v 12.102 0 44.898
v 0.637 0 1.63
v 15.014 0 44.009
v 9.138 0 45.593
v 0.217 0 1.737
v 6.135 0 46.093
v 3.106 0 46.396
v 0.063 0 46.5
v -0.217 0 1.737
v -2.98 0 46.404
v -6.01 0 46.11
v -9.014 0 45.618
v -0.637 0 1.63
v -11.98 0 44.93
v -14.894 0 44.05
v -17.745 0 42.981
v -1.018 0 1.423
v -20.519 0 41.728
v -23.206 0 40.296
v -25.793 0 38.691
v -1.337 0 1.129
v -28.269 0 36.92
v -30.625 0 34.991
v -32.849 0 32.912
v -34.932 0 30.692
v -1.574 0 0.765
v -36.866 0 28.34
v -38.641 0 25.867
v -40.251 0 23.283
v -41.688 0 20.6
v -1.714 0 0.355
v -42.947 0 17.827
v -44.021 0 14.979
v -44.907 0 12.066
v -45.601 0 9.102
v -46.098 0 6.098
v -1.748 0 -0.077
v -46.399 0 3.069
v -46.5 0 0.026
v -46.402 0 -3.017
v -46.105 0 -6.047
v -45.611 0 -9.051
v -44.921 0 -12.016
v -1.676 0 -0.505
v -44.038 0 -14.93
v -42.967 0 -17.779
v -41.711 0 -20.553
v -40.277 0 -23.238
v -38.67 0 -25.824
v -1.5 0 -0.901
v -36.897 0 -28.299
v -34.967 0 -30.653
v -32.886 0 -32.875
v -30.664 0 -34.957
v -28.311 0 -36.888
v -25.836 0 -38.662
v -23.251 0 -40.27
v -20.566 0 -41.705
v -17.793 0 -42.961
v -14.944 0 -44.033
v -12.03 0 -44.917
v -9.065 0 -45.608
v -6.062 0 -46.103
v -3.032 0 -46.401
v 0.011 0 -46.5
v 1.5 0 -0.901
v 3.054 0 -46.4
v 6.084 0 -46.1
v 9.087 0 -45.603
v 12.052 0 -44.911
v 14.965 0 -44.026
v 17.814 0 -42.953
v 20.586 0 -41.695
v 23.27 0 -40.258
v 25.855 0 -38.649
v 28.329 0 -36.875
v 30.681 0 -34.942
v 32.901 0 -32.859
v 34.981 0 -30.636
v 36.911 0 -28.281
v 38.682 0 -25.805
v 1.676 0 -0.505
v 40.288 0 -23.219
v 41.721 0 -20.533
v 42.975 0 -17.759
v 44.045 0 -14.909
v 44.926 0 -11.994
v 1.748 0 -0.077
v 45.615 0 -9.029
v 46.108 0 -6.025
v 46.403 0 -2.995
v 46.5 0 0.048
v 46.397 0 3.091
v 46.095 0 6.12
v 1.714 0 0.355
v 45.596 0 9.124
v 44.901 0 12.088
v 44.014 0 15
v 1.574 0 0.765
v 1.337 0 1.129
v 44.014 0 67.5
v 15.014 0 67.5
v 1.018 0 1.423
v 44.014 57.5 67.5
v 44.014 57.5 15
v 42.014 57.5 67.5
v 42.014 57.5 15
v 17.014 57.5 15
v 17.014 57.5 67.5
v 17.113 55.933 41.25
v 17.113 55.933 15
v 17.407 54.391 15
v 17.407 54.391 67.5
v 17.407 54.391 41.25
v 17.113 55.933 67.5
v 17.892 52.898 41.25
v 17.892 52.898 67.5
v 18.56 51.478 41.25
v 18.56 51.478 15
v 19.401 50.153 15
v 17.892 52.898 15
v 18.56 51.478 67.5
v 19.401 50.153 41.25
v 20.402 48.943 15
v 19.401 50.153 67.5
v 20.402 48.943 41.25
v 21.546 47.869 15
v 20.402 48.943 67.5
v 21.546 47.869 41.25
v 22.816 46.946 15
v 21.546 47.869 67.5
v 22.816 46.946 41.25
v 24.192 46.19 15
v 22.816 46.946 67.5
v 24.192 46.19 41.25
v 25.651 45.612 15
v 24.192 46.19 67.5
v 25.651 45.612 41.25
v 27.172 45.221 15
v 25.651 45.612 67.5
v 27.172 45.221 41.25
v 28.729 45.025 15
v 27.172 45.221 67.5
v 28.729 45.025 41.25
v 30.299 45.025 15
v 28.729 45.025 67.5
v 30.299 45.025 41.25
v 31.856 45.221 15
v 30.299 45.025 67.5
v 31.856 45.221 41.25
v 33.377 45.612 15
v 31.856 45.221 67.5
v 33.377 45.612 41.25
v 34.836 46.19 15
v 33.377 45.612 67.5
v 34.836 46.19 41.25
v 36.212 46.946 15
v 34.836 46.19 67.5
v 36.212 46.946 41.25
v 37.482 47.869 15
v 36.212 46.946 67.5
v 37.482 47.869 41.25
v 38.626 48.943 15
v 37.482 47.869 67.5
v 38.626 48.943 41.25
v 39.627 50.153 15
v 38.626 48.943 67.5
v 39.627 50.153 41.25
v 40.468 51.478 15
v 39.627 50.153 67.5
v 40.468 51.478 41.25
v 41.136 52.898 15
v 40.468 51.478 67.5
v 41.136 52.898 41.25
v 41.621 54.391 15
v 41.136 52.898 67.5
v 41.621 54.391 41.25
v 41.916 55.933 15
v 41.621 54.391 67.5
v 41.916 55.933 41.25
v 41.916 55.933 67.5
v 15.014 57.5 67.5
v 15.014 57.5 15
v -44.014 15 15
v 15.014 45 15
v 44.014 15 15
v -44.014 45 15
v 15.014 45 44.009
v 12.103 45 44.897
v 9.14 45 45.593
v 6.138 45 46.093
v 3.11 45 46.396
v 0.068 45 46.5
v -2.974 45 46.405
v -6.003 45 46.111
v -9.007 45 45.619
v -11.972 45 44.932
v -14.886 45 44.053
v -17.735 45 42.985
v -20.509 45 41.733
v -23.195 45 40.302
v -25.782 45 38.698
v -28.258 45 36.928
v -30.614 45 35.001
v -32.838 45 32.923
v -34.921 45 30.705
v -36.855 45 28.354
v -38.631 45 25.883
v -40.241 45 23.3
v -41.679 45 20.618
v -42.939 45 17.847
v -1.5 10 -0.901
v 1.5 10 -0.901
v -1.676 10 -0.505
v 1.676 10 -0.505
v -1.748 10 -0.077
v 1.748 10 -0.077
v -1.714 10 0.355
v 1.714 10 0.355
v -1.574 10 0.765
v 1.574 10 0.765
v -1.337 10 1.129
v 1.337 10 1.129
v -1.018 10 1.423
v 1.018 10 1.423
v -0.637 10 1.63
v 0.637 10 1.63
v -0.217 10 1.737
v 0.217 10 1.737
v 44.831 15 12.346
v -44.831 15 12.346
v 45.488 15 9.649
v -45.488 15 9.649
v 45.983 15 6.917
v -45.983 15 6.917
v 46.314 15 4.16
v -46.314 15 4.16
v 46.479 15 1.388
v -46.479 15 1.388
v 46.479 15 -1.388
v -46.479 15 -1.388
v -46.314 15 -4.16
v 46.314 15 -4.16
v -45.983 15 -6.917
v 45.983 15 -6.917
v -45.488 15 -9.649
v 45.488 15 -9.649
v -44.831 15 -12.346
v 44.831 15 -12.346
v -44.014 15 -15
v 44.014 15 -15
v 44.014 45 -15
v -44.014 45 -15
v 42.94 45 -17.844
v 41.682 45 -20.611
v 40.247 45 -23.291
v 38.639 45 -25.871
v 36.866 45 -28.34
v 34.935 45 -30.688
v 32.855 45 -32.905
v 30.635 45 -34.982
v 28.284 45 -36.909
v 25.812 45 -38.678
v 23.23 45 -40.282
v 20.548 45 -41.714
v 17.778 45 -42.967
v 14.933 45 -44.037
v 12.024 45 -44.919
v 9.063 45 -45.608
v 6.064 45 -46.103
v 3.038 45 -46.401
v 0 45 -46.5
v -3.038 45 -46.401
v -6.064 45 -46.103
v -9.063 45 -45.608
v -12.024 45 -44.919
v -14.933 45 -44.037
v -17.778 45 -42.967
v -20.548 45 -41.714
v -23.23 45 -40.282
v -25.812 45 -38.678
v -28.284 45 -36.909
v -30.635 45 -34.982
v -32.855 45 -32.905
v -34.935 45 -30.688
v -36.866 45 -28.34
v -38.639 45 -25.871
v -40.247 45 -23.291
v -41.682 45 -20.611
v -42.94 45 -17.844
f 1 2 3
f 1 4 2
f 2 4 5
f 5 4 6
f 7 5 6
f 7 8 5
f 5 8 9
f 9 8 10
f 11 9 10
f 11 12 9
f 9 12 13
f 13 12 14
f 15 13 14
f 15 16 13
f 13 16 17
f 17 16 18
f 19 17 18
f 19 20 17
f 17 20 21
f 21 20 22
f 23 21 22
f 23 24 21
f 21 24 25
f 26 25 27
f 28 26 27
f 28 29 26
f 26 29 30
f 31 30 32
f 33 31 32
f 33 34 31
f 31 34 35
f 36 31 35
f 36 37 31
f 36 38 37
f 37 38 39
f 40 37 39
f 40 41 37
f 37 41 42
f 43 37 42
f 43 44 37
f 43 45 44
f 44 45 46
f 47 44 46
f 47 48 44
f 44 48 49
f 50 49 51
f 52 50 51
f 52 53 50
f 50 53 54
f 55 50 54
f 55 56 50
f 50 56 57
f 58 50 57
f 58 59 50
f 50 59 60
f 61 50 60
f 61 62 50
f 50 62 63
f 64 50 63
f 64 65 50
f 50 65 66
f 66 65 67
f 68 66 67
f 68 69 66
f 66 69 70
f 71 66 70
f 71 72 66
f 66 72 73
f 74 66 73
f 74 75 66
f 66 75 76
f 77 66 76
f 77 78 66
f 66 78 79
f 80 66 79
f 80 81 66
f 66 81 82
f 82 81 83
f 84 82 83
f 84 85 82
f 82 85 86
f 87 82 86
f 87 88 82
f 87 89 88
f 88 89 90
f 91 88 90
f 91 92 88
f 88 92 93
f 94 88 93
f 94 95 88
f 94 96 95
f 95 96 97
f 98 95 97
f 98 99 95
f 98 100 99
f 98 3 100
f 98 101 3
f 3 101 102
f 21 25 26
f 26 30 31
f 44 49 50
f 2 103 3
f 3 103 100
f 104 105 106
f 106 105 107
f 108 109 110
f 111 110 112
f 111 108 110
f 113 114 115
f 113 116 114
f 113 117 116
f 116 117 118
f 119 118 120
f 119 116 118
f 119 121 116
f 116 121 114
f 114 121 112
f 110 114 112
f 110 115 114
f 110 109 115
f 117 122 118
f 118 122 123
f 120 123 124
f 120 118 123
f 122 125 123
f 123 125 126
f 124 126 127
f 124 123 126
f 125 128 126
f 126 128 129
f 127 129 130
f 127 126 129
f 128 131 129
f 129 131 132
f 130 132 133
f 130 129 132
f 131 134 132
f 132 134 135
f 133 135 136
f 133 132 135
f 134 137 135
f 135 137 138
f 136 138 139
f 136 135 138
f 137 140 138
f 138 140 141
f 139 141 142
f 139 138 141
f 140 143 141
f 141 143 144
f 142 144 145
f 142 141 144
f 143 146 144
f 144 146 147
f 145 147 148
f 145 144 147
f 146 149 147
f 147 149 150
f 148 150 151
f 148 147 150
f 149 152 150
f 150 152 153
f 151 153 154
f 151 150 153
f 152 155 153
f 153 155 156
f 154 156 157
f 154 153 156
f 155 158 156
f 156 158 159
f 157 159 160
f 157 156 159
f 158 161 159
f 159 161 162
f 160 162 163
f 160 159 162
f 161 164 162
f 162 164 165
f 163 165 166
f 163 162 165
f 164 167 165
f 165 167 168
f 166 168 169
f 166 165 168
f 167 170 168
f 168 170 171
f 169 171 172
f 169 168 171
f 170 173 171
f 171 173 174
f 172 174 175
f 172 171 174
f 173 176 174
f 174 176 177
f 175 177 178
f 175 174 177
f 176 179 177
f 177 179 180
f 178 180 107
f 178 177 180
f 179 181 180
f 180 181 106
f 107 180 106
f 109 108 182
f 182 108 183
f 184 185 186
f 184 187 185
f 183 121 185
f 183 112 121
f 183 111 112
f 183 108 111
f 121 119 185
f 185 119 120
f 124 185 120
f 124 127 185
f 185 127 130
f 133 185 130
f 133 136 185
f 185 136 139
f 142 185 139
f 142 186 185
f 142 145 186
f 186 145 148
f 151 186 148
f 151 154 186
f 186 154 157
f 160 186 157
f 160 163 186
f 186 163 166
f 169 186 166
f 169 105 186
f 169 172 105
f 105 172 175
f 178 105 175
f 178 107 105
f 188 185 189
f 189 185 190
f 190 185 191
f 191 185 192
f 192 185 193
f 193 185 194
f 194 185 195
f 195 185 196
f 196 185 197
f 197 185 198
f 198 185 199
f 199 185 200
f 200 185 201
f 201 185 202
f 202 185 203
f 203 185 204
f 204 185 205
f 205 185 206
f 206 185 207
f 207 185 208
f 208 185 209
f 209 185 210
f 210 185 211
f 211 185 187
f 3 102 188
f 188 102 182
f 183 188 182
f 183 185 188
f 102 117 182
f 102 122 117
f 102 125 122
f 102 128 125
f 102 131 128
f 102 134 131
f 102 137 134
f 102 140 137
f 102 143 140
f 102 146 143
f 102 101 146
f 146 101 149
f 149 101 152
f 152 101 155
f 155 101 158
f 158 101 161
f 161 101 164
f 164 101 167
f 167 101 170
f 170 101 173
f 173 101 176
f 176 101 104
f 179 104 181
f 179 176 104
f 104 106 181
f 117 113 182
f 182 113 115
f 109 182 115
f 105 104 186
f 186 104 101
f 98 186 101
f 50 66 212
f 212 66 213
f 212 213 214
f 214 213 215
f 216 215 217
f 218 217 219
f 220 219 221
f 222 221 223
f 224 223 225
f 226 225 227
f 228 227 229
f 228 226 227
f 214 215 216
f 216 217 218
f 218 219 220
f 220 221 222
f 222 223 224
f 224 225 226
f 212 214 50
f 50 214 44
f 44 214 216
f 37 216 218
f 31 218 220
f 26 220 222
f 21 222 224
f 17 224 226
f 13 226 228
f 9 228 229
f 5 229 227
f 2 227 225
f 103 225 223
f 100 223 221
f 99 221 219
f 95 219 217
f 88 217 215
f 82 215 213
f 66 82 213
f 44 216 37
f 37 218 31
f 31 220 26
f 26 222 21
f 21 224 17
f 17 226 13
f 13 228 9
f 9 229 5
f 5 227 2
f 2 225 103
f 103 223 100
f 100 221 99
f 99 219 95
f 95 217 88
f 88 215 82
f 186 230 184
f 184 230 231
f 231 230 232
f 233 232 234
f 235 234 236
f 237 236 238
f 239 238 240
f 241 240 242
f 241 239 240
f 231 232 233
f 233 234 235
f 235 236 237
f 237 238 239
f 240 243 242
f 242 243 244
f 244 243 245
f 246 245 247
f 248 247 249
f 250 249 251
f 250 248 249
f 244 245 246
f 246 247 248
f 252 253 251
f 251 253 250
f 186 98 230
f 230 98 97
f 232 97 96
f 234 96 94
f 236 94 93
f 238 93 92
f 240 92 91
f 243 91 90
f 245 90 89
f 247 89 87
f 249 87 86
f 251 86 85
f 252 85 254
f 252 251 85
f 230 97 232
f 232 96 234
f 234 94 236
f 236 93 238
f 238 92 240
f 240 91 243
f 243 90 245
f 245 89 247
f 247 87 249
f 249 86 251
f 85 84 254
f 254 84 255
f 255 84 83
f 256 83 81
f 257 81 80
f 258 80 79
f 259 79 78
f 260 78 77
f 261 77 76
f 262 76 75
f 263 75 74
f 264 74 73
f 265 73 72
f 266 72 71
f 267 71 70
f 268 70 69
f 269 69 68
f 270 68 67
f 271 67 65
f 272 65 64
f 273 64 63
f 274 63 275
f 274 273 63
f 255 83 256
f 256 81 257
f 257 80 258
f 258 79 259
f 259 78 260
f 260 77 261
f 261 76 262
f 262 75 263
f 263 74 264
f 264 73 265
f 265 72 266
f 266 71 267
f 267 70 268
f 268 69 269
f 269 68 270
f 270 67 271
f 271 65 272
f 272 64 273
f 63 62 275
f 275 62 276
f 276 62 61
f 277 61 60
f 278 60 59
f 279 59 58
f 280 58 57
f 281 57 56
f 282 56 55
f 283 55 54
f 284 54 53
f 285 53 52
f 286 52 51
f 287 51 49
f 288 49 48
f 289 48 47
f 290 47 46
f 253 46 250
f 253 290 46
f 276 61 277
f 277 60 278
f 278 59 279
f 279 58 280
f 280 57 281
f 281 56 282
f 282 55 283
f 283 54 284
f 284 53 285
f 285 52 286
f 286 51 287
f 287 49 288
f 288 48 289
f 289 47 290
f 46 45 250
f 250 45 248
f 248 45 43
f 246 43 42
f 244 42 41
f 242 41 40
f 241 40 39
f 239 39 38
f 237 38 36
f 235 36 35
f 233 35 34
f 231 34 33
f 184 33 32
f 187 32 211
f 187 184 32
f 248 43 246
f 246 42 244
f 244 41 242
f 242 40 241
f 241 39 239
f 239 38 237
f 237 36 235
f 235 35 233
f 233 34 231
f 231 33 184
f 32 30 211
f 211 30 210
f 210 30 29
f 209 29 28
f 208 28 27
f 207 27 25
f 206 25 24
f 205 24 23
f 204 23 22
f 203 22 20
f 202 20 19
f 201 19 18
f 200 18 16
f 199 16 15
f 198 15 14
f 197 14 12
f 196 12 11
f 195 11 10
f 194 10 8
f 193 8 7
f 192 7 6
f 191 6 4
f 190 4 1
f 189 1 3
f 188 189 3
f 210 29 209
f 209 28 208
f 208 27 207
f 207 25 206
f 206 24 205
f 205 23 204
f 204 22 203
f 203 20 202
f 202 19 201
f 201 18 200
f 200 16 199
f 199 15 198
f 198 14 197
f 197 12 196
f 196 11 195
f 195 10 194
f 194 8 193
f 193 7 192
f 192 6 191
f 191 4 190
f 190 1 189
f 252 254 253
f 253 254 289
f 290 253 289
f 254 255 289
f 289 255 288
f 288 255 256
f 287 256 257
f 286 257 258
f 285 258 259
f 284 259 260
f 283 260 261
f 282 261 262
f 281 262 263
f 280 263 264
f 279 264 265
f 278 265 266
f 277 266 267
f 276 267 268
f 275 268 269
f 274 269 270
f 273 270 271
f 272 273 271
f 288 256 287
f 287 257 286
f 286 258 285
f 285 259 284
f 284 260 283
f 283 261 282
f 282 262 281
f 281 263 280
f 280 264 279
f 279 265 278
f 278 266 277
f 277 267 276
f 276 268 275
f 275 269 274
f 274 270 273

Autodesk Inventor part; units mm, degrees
ref_plane "YZ Plane" through (0, 0, 0) normal (1, 0, 0) x (0, 1, 0)
ref_plane "XZ Plane" through (0, 0, 0) normal (0, 1, 0) x (-1, 0, 0)
ref_plane "XY Plane" through (0, 0, 0) normal (0, 0, 1) x (1, 0, 0)
sketch "Boceto1" plane through (0, 0, 0) normal (0, 1, 0) x (-1, 0, 0)
  circle A0 centre (0, 0) radius 46.5
  dimension "d0" = 93
extrude "Extrusión1" add sketch "Boceto1" along normal blind 45
sketch "Boceto2" plane through (0, 0, 0) normal (0, -1, 0) x (1, 0, 0)
  point P0 (0, 0)
sketch "Boceto3" plane through (0, 45, 0) normal (0, 1, 0) x (1, 0, 0)
  line L0 (46.5, -15) -> (-46.6883, -15)
  circle A0 centre (0, 0) radius 46.5 projected
  line L1 (46.5, -15) -> (46.5, 15)
  line L2 (46.5, 0) -> (46.5, -15)
  line L3 (46.5, 0) -> (46.5, 15)
  line L4 (-46.6883, -15) -> (-46.6883, 15)
  line L5 (-46.6883, 15) -> (46.5, 15)
extrude "Extrusión2" cut sketch "Boceto3" against normal blind 30 contours L0 A0 L1 | L0 A0 L5 | A0 L5 L1 | L0 L4 L5 A0
sketch "Boceto4" plane through (0, 45, 0) normal (0, 1, 0) x (1, 0, 0)
  circle A0 centre (0, 0) radius 46.5 projected
  point P0 (-44.0142, -15)
  point P1 (44.0142, -15)
sketch "Boceto5" plane through (0, 45, 0) normal (0, 1, 0) x (1, 0, 0)
  line L0 (-20.0239, -77.8543) -> (-20, -77.821)
  point P0 (0, 0)
  point P1 (-20, -41.9792)
  point P2 (0, 0)
  point P3 (0, 0)
extrude "Extrusión3" [suppressed]
sketch "Boceto6" plane through (0, 45, 0) normal (0, 1, 0) x (1, 0, 0)
  point P0 (0, 0)
sketch "Boceto7" plane through (0, 45, 0) normal (0, 1, 0) x (1, 0, 0)
  point P0 (0, 0)
sketch "Boceto8" plane through (0, 45, 0) normal (0, 1, 0) x (1, 0, 0)
  point P0 (0, 0)
sketch "Boceto9" plane through (0, 0, 0) normal (0, -1, 0) x (1, 0, 0)
  arc A0 (-44.0142, -15) -> (-44.0142, 15) centre (0, 0) ccw projected
  point P0 (5, 46.2304)
  point P1 (19.0142, 42.4348)
hole "Agujero1" at (0, 0, 0) direction (0, 1, 0) diameter 3.5 depth 10
sketch "Boceto10" plane through (0, 0, 0) normal (0, -1, 0) x (1, 0, 0)
  point P0 (0, 0)
sketch "Boceto11" plane through (0, 0, 0) normal (0, -1, 0) x (1, 0, 0)
  point P0 (0, 0)
sketch "Boceto12" plane through (0, 0, 0) normal (0, -1, 0) x (1, 0, 0)
  line L0 (1.5, -0.9014) -> (-1.5, -0.9014)
  arc A0 (-1.5, -0.9014) -> (1.5, -0.9014) centre (0, 0) ccw
extrude "Extrusión4" add sketch "Boceto12" against normal blind 10
sketch "Boceto13" plane through (5, 40, 88) normal (0, 0, 1) x (1, 0, 0)
  point P0 (-5, -40)
  point P1 (39.0142, 0)
sketch "Boceto14" plane through (5, 40, 88) normal (0, 0, 1) x (1, 0, 0)
  point P0 (-5, -40)
sketch "Boceto15" plane through (5, 40, 88) normal (0, 0, 1) x (1, 0, 0)
  point P0 (-5, -40)
  point P1 (39.0142, 0)
sketch "Boceto16" plane through (5, 40, 88) normal (0, 0, 1) x (1, 0, 0)
  point P0 (-5, -40)
  point P1 (0, 0)
  point P2 (39.0142, 0)
sketch "Boceto17" plane through (5, 40, 88) normal (0, 0, 1) x (1, 0, 0)
  point P0 (-5, -40)
  point P1 (39.0586, 0)
  point P2 (0, 0)
sketch "Boceto18" plane through (5, 40, 88) normal (0, 0, 1) x (1, 0, 0)
  line L0 (0, -40) -> (0, 0) projected
  line L1 (39.0142, -40) -> (0, -40) projected
  line L2 (39.0142, 20) -> (39.0142, -40)
  line L3 (0, 20) -> (0, -40)
  line L4 (0, -40) -> (39.0142, -40)
  line L5 (0, 20) -> (2, 20)
  line L6 (39.0142, 20) -> (38, 20)
  arc A0 (2, 20) -> (38, 20) centre (20, 18.1) ccw
  point P0 (-5, -40)
extrude "Extrusión5" [suppressed]
sketch "Boceto19" plane through (0, 15, 0) normal (0, 1, 0) x (1, 0, 0)
  point P0 (0, 0)
sketch "Boceto20" plane through (0, 45, 0) normal (0, 1, 0) x (1, 0, 0)
  point P0 (0, 0)
sketch "Boceto21" plane through (0, 45, 0) normal (0, 1, 0) x (1, 0, 0)
  point P0 (0, 0)
sketch "Boceto22" plane through (0, 45, 0) normal (0, 1, 0) x (1, 0, 0)
  point P0 (0, 0)
sketch "Boceto23" plane through (19.0142, 40, 67.4096) normal (0, 0, 1) x (1, 0, 0)
  line L0 (25, 0) -> (-63.0284, 0) projected
  point P0 (-19.0142, -40)
sketch "Boceto24" plane through (0, 45, 0) normal (0, 1, 0) x (1, 0, 0)
  arc A0 (-1.5, 0.9014) -> (1.5, 0.9014) centre (0, 0) ccw projected
  arc A1 (15.0142, -44.0094) -> (44.0142, -15) centre (0, 0) ccw
  circle A2 centre (0, 0) radius 46.5 projected
  arc A3 (-44.0142, -15) -> (44.0142, -15) centre (0, 0) ccw projected
  line L0 (44.0142, -15) -> (44.0142, -67.5)
  line L1 (44.0142, -67.5) -> (15.0142, -67.5)
  line L2 (15.0142, -67.5) -> (15.0142, -44.0094)
extrude "Extrusión6" add sketch "Boceto24" against normal blind 40 contours A1 L0 L1 L2
sketch "Boceto25" plane through (15.0142, 45, 67.5) normal (0, 0, 1) x (1, 0, 0)
  line L0 (29, 0) -> (29, 12.5)
  line L1 (29, 12.5) -> (27, 12.5)
  line L2 (0, 12.5) -> (2, 12.5)
  arc A0 (2, 12.5) -> (27, 12.5) centre (14.5, 12.5) ccw
  line L3 (29, -40) -> (0, -40) projected
  line L4 (0, 12.5) -> (0, -40)
  line L5 (0, -40) -> (29, -40)
  line L6 (29, -40) -> (29, 0)
  point P0 (0, 0)
sketch "Boceto26" plane through (0, 45, 0) normal (0, 1, 0) x (1, 0, 0)
  point P0 (0, 0)
extrude "Extrusión7" add sketch "Boceto25" against normal blind 52.5
sketch "Boceto27" plane through (15.0142, 5, 67.5) normal (0, 0, 1) x (1, 0, 0)
  point P0 (-15.0142, -5)
sketch "Boceto28" plane through (15.0142, 5, 67.5) normal (0, 0, 1) x (1, 0, 0)
  line L0 (0, 0) -> (0, -5)
  line L1 (29, 0) -> (29, -5)
  line L2 (29, -5) -> (0, -5)
  line L3 (0, 0) -> (29, 0) projected
  line L4 (29, 0) -> (0, 0)
  point P0 (-15.0142, -5)
extrude "Extrusión8" add sketch "Boceto28" against normal blind 70
properties part number "cilindro"
